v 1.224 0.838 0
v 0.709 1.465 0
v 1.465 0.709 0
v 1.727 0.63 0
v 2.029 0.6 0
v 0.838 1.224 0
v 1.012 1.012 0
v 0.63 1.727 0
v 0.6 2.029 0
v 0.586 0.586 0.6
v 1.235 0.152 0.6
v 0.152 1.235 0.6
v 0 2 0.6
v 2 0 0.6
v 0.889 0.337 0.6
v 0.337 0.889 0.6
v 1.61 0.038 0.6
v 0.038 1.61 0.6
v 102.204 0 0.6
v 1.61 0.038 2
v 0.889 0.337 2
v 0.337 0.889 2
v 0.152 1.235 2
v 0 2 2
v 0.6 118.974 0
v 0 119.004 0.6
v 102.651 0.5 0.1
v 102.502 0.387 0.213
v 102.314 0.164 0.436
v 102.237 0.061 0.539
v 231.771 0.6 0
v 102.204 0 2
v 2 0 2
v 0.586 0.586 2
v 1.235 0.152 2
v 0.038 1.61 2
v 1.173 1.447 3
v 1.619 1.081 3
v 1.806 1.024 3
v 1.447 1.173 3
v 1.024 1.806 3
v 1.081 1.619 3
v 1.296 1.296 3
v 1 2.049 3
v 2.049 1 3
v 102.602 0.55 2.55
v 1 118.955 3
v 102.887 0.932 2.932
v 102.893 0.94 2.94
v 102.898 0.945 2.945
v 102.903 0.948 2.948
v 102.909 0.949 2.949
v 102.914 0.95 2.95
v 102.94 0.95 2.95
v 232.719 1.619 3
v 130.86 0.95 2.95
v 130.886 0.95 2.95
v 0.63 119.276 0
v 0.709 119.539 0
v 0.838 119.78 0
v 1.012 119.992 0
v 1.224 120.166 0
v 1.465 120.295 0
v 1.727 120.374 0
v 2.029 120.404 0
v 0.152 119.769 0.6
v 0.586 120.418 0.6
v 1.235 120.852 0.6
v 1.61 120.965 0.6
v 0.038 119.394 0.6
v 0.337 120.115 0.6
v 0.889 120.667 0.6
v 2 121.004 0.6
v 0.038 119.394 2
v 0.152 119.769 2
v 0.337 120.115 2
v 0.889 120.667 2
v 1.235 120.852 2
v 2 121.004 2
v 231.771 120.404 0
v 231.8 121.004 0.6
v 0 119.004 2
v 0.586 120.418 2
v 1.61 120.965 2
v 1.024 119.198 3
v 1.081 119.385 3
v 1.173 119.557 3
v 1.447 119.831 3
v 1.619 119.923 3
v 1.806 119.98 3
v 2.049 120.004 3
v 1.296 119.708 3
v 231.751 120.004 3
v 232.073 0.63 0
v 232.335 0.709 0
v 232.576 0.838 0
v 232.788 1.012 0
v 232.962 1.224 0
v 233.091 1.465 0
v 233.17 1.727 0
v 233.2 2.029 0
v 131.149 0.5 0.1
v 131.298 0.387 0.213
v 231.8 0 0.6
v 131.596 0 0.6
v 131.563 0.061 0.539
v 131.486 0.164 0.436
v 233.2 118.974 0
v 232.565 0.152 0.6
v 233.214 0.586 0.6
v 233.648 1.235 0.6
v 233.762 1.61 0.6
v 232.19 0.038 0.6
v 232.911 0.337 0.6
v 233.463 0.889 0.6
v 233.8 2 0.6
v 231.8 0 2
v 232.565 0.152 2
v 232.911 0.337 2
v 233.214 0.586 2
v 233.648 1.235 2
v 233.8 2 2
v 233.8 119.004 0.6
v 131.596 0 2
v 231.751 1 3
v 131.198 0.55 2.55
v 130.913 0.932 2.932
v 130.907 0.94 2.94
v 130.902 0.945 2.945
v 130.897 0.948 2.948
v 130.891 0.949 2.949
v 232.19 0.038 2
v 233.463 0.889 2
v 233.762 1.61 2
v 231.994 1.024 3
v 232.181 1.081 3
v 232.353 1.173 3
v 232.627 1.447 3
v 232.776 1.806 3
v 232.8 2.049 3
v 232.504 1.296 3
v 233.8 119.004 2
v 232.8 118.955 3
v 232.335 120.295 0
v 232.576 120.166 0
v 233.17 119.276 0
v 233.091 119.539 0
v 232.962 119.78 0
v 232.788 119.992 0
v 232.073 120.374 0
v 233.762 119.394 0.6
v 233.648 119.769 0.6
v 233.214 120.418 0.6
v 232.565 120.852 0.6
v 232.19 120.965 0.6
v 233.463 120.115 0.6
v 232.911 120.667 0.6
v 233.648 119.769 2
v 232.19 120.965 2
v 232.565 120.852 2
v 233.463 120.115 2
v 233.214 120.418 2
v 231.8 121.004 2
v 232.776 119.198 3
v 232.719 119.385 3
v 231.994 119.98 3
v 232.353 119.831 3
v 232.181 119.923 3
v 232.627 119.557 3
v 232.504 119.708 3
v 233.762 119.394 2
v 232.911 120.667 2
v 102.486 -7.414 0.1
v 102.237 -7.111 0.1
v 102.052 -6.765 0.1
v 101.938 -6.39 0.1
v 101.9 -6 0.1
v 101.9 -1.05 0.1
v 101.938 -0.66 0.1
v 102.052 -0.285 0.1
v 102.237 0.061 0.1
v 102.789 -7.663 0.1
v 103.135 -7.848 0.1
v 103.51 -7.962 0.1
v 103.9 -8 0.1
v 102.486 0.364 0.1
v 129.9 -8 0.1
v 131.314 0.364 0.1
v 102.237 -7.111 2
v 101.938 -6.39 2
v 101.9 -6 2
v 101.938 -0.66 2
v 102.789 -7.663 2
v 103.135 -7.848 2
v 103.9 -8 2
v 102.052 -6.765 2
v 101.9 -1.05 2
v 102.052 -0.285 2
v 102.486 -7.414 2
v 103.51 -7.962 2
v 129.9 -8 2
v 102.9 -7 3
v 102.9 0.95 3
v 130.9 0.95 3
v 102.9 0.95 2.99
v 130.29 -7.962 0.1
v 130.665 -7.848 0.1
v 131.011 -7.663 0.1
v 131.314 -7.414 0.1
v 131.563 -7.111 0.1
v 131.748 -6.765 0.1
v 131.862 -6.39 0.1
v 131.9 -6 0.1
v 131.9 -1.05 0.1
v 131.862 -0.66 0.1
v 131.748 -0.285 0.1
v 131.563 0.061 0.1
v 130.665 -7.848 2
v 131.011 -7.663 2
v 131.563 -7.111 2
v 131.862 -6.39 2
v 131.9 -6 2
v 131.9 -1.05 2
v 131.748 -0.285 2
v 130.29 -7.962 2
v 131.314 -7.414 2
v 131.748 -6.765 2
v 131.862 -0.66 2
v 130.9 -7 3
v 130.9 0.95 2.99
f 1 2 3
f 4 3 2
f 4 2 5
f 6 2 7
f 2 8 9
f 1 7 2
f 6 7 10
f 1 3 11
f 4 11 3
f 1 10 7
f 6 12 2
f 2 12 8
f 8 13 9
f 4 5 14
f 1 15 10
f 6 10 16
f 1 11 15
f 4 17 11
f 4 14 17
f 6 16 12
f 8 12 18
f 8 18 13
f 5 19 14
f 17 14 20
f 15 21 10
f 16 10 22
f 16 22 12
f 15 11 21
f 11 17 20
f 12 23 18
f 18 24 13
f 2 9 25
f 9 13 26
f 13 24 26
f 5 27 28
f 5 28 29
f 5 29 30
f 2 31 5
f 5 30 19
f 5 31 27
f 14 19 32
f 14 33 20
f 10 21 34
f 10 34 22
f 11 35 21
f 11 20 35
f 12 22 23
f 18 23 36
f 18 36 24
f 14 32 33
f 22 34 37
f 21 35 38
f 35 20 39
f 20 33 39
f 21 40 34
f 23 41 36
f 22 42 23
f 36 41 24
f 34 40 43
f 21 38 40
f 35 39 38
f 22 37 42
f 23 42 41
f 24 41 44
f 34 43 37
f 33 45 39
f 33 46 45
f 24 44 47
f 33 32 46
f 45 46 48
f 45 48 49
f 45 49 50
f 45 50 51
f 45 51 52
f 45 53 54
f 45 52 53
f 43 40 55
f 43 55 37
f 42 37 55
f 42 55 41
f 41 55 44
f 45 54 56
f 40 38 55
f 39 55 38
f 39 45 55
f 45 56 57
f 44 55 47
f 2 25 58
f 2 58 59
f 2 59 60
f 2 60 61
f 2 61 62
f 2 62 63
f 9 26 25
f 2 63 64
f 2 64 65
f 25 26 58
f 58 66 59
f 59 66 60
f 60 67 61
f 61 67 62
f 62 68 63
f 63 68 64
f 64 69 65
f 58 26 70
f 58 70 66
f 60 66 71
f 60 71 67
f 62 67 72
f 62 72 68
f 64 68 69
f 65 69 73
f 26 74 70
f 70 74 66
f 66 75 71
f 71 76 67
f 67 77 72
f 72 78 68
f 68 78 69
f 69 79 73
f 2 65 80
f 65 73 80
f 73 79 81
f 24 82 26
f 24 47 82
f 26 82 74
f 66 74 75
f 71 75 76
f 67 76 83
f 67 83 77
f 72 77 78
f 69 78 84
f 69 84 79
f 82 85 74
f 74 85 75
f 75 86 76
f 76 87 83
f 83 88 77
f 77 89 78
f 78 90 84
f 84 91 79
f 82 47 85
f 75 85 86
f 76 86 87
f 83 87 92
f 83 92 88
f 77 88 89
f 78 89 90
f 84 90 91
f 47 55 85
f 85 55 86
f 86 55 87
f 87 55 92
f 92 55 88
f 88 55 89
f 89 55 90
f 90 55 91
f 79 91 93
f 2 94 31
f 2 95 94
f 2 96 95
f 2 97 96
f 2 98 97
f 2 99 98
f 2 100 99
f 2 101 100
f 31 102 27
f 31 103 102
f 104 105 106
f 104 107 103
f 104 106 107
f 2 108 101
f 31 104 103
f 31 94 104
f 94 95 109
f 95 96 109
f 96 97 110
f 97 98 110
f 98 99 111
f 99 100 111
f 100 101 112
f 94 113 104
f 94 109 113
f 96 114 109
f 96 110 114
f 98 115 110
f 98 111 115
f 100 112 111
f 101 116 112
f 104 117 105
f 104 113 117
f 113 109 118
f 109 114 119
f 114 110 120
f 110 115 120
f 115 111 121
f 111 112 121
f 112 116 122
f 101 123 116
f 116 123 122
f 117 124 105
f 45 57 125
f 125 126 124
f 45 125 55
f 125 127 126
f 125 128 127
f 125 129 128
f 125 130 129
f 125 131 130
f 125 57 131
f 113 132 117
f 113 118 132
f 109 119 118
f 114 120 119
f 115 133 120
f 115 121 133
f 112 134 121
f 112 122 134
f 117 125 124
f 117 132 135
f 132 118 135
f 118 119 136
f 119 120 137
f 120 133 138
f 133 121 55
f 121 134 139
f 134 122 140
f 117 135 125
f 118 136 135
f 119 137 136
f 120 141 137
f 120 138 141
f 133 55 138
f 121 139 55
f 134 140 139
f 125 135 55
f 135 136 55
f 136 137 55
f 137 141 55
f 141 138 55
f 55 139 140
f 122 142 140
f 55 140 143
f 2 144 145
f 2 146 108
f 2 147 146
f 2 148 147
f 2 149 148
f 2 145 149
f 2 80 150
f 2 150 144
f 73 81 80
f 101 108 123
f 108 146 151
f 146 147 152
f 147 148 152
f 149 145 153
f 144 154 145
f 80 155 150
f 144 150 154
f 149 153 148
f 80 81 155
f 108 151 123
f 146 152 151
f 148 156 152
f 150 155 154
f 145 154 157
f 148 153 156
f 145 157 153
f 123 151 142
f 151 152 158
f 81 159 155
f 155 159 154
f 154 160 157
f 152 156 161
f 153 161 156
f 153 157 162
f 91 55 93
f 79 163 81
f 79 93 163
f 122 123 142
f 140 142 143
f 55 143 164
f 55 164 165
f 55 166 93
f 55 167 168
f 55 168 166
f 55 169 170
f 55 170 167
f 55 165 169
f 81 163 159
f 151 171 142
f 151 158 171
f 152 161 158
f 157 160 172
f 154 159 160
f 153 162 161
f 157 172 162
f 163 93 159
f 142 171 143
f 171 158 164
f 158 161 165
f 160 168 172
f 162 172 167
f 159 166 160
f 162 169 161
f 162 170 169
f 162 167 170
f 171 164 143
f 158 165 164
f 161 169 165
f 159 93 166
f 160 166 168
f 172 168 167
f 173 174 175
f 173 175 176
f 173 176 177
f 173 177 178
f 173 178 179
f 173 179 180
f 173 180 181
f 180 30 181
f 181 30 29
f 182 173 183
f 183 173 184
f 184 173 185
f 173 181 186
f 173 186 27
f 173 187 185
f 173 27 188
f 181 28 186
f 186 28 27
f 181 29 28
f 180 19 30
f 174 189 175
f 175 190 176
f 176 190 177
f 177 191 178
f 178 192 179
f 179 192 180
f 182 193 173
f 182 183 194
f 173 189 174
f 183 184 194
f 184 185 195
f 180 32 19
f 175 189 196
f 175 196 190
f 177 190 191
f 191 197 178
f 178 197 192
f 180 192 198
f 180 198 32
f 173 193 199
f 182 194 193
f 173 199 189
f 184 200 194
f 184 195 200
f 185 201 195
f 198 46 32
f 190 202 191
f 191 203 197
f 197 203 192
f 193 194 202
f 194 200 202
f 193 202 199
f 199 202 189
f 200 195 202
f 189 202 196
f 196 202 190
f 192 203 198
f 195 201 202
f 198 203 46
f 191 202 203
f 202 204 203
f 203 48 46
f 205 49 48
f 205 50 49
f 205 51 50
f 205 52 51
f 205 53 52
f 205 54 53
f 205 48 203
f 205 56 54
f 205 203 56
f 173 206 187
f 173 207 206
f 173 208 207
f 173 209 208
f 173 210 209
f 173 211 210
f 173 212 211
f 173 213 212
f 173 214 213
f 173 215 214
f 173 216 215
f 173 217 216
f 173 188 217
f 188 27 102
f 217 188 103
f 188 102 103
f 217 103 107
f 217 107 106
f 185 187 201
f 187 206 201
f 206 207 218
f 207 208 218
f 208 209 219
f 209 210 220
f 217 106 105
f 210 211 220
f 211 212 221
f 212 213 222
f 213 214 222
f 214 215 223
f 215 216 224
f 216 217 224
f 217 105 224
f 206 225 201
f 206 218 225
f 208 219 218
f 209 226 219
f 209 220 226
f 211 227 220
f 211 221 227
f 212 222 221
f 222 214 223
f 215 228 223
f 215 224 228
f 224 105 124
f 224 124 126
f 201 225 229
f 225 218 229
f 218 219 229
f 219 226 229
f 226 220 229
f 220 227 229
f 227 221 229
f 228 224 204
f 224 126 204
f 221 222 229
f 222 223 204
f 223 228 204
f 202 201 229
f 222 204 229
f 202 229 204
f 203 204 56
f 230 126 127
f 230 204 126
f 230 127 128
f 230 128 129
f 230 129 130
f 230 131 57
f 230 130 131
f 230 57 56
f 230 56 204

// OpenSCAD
// ============================================================
// fill_lid.scad -- ONE lid over BOTH hopper mouths. Both mouths
// finish at hopper_rim, which is what lets a single flat plate
// cover them.
//
// Local origin: front-bottom-left corner of the lid plate.
//   +Y toward the back, +Z up (as installed). The pull lip
//   extends to -Y from that corner.
//
// Material: PLA or PETG.
// Print orientation: FLIPPED -- plate top face on the bed. The
//   pull lip is in the plate's own plane; the underside lead-in
//   chamfer is a 45 degree face at the top of the print.
//
// Fit (D30): the lid drops into the recess above the seat
//   ledges with fill_lid_clear all round and rests on them. It
//   is held by gravity, which is all the brief needs -- it stays
//   put when set down. Revisions 5-7 had two snap tabs; test
//   print 1 broke every one, because a tab printed standing up
//   bends across its layer lines. To lift: hook a fingertip under
//   the pull lip, which stands out over tray B's air.
//
// EXPECTED_BBOX: [233.8, 129.0, 3.0]
// ============================================================

include <../params.scad>

module yz_extrude(x0, x1) {
    rotate([90, 0, 90]) translate([0, 0, x0])
        linear_extrude(height = x1 - x0) children();
}

// The plate and the pull lip (D23) are each a convex outline -- a rounded
// rectangle -- so each can be chamfered by hull(): the outline lid_t minus
// lid_chamfer tall, hulled with the outline inset by lid_chamfer at the top.
// A single non-convex outline cannot be chamfered that way (hull fills the
// concave corners where the lip meets the plate), and a Minkowski cone left
// zero-area slivers at exactly those corners (revision 7).
//
// Where the lip meets the plate (D27, revision 7): the lip's top is FLUSH with
// the plate's top, because that face goes on the bed when the lid is printed
// flipped and a lip 0.1mm above the bed prints in mid-air. So the lip's solid
// ends at y = lip_back, INSIDE the plate's front chamfer band (0 < lip_back <
// lid_chamfer), where the plate's top is already below lid_t: the two top
// faces lie on one plane but never overlap. Its underside sits lip_in above
// the plate's underside, so the two bottom faces never overlap either. The
// lip's own chamfer runs along its front and sides only; its back edge is
// vertical and buried.
module rounded_rect(w, d) {
    offset(r = lid_edge_r) offset(r = -lid_edge_r) square([w, d]);
}
// The underside perimeter carries a fill_lead_in chamfer (D30): the lid now
// simply drops into its recess and rests on the seat ledges, and the chamfer
// is what lets it find the recess. Printed flipped, it is a 45 degree face
// near the top of the print.
module fill_plate_slab() {
    hull() {
        linear_extrude(height = 0.01)
            offset(delta = -fill_lead_in) rounded_rect(fill_lid_x, fill_lid_y);
        translate([0, 0, fill_lead_in])
            linear_extrude(height = lid_t - lid_chamfer - fill_lead_in) rounded_rect(fill_lid_x, fill_lid_y);
        translate([0, 0, lid_t - 0.01]) linear_extrude(height = 0.01)
            offset(delta = -lid_chamfer) rounded_rect(fill_lid_x, fill_lid_y);
    }
}
lip_back = lid_chamfer - 0.05;     // where the lip's solid ends, inside the chamfer band
lip_in   = 0.1;                    // its underside, above the plate's underside
module fill_lip_slab() {
    d = fill_lip_len + lip_back;
    translate([fill_lid_x / 2 - fill_lip_w / 2, -fill_lip_len, 0]) hull() {
        translate([0, 0, lip_in]) linear_extrude(height = lid_t - lid_chamfer - lip_in)
            rounded_rect(fill_lip_w, d);
        translate([lid_chamfer, lid_chamfer, lid_t - 0.01]) linear_extrude(height = 0.01)
            square([fill_lip_w - 2 * lid_chamfer, d - lid_chamfer]);
    }
}
assert(lip_back > 0 && lip_back < lid_chamfer,
       "the lip must end inside the plate's chamfer band, or its top face overlaps the plate's");
module fill_plate() { fill_plate_slab(); fill_lip_slab(); }

module fill_lid_geometry() { fill_plate(); }

// SUBFEATURES: fill_plate_slab, fill_lip_slab
SUBFEATURE = is_undef(SUBFEATURE) ? "" : SUBFEATURE;
module subfeature_by_name(name) {
    if (name == "fill_plate_slab") fill_plate_slab();
    else if (name == "fill_lip_slab") fill_lip_slab();
    else assert(false, str("Unknown sub-feature '", name, "' in fill_lid.scad"));
}
if (SUBFEATURE != "") subfeature_by_name(SUBFEATURE);
else fill_lid_geometry();
